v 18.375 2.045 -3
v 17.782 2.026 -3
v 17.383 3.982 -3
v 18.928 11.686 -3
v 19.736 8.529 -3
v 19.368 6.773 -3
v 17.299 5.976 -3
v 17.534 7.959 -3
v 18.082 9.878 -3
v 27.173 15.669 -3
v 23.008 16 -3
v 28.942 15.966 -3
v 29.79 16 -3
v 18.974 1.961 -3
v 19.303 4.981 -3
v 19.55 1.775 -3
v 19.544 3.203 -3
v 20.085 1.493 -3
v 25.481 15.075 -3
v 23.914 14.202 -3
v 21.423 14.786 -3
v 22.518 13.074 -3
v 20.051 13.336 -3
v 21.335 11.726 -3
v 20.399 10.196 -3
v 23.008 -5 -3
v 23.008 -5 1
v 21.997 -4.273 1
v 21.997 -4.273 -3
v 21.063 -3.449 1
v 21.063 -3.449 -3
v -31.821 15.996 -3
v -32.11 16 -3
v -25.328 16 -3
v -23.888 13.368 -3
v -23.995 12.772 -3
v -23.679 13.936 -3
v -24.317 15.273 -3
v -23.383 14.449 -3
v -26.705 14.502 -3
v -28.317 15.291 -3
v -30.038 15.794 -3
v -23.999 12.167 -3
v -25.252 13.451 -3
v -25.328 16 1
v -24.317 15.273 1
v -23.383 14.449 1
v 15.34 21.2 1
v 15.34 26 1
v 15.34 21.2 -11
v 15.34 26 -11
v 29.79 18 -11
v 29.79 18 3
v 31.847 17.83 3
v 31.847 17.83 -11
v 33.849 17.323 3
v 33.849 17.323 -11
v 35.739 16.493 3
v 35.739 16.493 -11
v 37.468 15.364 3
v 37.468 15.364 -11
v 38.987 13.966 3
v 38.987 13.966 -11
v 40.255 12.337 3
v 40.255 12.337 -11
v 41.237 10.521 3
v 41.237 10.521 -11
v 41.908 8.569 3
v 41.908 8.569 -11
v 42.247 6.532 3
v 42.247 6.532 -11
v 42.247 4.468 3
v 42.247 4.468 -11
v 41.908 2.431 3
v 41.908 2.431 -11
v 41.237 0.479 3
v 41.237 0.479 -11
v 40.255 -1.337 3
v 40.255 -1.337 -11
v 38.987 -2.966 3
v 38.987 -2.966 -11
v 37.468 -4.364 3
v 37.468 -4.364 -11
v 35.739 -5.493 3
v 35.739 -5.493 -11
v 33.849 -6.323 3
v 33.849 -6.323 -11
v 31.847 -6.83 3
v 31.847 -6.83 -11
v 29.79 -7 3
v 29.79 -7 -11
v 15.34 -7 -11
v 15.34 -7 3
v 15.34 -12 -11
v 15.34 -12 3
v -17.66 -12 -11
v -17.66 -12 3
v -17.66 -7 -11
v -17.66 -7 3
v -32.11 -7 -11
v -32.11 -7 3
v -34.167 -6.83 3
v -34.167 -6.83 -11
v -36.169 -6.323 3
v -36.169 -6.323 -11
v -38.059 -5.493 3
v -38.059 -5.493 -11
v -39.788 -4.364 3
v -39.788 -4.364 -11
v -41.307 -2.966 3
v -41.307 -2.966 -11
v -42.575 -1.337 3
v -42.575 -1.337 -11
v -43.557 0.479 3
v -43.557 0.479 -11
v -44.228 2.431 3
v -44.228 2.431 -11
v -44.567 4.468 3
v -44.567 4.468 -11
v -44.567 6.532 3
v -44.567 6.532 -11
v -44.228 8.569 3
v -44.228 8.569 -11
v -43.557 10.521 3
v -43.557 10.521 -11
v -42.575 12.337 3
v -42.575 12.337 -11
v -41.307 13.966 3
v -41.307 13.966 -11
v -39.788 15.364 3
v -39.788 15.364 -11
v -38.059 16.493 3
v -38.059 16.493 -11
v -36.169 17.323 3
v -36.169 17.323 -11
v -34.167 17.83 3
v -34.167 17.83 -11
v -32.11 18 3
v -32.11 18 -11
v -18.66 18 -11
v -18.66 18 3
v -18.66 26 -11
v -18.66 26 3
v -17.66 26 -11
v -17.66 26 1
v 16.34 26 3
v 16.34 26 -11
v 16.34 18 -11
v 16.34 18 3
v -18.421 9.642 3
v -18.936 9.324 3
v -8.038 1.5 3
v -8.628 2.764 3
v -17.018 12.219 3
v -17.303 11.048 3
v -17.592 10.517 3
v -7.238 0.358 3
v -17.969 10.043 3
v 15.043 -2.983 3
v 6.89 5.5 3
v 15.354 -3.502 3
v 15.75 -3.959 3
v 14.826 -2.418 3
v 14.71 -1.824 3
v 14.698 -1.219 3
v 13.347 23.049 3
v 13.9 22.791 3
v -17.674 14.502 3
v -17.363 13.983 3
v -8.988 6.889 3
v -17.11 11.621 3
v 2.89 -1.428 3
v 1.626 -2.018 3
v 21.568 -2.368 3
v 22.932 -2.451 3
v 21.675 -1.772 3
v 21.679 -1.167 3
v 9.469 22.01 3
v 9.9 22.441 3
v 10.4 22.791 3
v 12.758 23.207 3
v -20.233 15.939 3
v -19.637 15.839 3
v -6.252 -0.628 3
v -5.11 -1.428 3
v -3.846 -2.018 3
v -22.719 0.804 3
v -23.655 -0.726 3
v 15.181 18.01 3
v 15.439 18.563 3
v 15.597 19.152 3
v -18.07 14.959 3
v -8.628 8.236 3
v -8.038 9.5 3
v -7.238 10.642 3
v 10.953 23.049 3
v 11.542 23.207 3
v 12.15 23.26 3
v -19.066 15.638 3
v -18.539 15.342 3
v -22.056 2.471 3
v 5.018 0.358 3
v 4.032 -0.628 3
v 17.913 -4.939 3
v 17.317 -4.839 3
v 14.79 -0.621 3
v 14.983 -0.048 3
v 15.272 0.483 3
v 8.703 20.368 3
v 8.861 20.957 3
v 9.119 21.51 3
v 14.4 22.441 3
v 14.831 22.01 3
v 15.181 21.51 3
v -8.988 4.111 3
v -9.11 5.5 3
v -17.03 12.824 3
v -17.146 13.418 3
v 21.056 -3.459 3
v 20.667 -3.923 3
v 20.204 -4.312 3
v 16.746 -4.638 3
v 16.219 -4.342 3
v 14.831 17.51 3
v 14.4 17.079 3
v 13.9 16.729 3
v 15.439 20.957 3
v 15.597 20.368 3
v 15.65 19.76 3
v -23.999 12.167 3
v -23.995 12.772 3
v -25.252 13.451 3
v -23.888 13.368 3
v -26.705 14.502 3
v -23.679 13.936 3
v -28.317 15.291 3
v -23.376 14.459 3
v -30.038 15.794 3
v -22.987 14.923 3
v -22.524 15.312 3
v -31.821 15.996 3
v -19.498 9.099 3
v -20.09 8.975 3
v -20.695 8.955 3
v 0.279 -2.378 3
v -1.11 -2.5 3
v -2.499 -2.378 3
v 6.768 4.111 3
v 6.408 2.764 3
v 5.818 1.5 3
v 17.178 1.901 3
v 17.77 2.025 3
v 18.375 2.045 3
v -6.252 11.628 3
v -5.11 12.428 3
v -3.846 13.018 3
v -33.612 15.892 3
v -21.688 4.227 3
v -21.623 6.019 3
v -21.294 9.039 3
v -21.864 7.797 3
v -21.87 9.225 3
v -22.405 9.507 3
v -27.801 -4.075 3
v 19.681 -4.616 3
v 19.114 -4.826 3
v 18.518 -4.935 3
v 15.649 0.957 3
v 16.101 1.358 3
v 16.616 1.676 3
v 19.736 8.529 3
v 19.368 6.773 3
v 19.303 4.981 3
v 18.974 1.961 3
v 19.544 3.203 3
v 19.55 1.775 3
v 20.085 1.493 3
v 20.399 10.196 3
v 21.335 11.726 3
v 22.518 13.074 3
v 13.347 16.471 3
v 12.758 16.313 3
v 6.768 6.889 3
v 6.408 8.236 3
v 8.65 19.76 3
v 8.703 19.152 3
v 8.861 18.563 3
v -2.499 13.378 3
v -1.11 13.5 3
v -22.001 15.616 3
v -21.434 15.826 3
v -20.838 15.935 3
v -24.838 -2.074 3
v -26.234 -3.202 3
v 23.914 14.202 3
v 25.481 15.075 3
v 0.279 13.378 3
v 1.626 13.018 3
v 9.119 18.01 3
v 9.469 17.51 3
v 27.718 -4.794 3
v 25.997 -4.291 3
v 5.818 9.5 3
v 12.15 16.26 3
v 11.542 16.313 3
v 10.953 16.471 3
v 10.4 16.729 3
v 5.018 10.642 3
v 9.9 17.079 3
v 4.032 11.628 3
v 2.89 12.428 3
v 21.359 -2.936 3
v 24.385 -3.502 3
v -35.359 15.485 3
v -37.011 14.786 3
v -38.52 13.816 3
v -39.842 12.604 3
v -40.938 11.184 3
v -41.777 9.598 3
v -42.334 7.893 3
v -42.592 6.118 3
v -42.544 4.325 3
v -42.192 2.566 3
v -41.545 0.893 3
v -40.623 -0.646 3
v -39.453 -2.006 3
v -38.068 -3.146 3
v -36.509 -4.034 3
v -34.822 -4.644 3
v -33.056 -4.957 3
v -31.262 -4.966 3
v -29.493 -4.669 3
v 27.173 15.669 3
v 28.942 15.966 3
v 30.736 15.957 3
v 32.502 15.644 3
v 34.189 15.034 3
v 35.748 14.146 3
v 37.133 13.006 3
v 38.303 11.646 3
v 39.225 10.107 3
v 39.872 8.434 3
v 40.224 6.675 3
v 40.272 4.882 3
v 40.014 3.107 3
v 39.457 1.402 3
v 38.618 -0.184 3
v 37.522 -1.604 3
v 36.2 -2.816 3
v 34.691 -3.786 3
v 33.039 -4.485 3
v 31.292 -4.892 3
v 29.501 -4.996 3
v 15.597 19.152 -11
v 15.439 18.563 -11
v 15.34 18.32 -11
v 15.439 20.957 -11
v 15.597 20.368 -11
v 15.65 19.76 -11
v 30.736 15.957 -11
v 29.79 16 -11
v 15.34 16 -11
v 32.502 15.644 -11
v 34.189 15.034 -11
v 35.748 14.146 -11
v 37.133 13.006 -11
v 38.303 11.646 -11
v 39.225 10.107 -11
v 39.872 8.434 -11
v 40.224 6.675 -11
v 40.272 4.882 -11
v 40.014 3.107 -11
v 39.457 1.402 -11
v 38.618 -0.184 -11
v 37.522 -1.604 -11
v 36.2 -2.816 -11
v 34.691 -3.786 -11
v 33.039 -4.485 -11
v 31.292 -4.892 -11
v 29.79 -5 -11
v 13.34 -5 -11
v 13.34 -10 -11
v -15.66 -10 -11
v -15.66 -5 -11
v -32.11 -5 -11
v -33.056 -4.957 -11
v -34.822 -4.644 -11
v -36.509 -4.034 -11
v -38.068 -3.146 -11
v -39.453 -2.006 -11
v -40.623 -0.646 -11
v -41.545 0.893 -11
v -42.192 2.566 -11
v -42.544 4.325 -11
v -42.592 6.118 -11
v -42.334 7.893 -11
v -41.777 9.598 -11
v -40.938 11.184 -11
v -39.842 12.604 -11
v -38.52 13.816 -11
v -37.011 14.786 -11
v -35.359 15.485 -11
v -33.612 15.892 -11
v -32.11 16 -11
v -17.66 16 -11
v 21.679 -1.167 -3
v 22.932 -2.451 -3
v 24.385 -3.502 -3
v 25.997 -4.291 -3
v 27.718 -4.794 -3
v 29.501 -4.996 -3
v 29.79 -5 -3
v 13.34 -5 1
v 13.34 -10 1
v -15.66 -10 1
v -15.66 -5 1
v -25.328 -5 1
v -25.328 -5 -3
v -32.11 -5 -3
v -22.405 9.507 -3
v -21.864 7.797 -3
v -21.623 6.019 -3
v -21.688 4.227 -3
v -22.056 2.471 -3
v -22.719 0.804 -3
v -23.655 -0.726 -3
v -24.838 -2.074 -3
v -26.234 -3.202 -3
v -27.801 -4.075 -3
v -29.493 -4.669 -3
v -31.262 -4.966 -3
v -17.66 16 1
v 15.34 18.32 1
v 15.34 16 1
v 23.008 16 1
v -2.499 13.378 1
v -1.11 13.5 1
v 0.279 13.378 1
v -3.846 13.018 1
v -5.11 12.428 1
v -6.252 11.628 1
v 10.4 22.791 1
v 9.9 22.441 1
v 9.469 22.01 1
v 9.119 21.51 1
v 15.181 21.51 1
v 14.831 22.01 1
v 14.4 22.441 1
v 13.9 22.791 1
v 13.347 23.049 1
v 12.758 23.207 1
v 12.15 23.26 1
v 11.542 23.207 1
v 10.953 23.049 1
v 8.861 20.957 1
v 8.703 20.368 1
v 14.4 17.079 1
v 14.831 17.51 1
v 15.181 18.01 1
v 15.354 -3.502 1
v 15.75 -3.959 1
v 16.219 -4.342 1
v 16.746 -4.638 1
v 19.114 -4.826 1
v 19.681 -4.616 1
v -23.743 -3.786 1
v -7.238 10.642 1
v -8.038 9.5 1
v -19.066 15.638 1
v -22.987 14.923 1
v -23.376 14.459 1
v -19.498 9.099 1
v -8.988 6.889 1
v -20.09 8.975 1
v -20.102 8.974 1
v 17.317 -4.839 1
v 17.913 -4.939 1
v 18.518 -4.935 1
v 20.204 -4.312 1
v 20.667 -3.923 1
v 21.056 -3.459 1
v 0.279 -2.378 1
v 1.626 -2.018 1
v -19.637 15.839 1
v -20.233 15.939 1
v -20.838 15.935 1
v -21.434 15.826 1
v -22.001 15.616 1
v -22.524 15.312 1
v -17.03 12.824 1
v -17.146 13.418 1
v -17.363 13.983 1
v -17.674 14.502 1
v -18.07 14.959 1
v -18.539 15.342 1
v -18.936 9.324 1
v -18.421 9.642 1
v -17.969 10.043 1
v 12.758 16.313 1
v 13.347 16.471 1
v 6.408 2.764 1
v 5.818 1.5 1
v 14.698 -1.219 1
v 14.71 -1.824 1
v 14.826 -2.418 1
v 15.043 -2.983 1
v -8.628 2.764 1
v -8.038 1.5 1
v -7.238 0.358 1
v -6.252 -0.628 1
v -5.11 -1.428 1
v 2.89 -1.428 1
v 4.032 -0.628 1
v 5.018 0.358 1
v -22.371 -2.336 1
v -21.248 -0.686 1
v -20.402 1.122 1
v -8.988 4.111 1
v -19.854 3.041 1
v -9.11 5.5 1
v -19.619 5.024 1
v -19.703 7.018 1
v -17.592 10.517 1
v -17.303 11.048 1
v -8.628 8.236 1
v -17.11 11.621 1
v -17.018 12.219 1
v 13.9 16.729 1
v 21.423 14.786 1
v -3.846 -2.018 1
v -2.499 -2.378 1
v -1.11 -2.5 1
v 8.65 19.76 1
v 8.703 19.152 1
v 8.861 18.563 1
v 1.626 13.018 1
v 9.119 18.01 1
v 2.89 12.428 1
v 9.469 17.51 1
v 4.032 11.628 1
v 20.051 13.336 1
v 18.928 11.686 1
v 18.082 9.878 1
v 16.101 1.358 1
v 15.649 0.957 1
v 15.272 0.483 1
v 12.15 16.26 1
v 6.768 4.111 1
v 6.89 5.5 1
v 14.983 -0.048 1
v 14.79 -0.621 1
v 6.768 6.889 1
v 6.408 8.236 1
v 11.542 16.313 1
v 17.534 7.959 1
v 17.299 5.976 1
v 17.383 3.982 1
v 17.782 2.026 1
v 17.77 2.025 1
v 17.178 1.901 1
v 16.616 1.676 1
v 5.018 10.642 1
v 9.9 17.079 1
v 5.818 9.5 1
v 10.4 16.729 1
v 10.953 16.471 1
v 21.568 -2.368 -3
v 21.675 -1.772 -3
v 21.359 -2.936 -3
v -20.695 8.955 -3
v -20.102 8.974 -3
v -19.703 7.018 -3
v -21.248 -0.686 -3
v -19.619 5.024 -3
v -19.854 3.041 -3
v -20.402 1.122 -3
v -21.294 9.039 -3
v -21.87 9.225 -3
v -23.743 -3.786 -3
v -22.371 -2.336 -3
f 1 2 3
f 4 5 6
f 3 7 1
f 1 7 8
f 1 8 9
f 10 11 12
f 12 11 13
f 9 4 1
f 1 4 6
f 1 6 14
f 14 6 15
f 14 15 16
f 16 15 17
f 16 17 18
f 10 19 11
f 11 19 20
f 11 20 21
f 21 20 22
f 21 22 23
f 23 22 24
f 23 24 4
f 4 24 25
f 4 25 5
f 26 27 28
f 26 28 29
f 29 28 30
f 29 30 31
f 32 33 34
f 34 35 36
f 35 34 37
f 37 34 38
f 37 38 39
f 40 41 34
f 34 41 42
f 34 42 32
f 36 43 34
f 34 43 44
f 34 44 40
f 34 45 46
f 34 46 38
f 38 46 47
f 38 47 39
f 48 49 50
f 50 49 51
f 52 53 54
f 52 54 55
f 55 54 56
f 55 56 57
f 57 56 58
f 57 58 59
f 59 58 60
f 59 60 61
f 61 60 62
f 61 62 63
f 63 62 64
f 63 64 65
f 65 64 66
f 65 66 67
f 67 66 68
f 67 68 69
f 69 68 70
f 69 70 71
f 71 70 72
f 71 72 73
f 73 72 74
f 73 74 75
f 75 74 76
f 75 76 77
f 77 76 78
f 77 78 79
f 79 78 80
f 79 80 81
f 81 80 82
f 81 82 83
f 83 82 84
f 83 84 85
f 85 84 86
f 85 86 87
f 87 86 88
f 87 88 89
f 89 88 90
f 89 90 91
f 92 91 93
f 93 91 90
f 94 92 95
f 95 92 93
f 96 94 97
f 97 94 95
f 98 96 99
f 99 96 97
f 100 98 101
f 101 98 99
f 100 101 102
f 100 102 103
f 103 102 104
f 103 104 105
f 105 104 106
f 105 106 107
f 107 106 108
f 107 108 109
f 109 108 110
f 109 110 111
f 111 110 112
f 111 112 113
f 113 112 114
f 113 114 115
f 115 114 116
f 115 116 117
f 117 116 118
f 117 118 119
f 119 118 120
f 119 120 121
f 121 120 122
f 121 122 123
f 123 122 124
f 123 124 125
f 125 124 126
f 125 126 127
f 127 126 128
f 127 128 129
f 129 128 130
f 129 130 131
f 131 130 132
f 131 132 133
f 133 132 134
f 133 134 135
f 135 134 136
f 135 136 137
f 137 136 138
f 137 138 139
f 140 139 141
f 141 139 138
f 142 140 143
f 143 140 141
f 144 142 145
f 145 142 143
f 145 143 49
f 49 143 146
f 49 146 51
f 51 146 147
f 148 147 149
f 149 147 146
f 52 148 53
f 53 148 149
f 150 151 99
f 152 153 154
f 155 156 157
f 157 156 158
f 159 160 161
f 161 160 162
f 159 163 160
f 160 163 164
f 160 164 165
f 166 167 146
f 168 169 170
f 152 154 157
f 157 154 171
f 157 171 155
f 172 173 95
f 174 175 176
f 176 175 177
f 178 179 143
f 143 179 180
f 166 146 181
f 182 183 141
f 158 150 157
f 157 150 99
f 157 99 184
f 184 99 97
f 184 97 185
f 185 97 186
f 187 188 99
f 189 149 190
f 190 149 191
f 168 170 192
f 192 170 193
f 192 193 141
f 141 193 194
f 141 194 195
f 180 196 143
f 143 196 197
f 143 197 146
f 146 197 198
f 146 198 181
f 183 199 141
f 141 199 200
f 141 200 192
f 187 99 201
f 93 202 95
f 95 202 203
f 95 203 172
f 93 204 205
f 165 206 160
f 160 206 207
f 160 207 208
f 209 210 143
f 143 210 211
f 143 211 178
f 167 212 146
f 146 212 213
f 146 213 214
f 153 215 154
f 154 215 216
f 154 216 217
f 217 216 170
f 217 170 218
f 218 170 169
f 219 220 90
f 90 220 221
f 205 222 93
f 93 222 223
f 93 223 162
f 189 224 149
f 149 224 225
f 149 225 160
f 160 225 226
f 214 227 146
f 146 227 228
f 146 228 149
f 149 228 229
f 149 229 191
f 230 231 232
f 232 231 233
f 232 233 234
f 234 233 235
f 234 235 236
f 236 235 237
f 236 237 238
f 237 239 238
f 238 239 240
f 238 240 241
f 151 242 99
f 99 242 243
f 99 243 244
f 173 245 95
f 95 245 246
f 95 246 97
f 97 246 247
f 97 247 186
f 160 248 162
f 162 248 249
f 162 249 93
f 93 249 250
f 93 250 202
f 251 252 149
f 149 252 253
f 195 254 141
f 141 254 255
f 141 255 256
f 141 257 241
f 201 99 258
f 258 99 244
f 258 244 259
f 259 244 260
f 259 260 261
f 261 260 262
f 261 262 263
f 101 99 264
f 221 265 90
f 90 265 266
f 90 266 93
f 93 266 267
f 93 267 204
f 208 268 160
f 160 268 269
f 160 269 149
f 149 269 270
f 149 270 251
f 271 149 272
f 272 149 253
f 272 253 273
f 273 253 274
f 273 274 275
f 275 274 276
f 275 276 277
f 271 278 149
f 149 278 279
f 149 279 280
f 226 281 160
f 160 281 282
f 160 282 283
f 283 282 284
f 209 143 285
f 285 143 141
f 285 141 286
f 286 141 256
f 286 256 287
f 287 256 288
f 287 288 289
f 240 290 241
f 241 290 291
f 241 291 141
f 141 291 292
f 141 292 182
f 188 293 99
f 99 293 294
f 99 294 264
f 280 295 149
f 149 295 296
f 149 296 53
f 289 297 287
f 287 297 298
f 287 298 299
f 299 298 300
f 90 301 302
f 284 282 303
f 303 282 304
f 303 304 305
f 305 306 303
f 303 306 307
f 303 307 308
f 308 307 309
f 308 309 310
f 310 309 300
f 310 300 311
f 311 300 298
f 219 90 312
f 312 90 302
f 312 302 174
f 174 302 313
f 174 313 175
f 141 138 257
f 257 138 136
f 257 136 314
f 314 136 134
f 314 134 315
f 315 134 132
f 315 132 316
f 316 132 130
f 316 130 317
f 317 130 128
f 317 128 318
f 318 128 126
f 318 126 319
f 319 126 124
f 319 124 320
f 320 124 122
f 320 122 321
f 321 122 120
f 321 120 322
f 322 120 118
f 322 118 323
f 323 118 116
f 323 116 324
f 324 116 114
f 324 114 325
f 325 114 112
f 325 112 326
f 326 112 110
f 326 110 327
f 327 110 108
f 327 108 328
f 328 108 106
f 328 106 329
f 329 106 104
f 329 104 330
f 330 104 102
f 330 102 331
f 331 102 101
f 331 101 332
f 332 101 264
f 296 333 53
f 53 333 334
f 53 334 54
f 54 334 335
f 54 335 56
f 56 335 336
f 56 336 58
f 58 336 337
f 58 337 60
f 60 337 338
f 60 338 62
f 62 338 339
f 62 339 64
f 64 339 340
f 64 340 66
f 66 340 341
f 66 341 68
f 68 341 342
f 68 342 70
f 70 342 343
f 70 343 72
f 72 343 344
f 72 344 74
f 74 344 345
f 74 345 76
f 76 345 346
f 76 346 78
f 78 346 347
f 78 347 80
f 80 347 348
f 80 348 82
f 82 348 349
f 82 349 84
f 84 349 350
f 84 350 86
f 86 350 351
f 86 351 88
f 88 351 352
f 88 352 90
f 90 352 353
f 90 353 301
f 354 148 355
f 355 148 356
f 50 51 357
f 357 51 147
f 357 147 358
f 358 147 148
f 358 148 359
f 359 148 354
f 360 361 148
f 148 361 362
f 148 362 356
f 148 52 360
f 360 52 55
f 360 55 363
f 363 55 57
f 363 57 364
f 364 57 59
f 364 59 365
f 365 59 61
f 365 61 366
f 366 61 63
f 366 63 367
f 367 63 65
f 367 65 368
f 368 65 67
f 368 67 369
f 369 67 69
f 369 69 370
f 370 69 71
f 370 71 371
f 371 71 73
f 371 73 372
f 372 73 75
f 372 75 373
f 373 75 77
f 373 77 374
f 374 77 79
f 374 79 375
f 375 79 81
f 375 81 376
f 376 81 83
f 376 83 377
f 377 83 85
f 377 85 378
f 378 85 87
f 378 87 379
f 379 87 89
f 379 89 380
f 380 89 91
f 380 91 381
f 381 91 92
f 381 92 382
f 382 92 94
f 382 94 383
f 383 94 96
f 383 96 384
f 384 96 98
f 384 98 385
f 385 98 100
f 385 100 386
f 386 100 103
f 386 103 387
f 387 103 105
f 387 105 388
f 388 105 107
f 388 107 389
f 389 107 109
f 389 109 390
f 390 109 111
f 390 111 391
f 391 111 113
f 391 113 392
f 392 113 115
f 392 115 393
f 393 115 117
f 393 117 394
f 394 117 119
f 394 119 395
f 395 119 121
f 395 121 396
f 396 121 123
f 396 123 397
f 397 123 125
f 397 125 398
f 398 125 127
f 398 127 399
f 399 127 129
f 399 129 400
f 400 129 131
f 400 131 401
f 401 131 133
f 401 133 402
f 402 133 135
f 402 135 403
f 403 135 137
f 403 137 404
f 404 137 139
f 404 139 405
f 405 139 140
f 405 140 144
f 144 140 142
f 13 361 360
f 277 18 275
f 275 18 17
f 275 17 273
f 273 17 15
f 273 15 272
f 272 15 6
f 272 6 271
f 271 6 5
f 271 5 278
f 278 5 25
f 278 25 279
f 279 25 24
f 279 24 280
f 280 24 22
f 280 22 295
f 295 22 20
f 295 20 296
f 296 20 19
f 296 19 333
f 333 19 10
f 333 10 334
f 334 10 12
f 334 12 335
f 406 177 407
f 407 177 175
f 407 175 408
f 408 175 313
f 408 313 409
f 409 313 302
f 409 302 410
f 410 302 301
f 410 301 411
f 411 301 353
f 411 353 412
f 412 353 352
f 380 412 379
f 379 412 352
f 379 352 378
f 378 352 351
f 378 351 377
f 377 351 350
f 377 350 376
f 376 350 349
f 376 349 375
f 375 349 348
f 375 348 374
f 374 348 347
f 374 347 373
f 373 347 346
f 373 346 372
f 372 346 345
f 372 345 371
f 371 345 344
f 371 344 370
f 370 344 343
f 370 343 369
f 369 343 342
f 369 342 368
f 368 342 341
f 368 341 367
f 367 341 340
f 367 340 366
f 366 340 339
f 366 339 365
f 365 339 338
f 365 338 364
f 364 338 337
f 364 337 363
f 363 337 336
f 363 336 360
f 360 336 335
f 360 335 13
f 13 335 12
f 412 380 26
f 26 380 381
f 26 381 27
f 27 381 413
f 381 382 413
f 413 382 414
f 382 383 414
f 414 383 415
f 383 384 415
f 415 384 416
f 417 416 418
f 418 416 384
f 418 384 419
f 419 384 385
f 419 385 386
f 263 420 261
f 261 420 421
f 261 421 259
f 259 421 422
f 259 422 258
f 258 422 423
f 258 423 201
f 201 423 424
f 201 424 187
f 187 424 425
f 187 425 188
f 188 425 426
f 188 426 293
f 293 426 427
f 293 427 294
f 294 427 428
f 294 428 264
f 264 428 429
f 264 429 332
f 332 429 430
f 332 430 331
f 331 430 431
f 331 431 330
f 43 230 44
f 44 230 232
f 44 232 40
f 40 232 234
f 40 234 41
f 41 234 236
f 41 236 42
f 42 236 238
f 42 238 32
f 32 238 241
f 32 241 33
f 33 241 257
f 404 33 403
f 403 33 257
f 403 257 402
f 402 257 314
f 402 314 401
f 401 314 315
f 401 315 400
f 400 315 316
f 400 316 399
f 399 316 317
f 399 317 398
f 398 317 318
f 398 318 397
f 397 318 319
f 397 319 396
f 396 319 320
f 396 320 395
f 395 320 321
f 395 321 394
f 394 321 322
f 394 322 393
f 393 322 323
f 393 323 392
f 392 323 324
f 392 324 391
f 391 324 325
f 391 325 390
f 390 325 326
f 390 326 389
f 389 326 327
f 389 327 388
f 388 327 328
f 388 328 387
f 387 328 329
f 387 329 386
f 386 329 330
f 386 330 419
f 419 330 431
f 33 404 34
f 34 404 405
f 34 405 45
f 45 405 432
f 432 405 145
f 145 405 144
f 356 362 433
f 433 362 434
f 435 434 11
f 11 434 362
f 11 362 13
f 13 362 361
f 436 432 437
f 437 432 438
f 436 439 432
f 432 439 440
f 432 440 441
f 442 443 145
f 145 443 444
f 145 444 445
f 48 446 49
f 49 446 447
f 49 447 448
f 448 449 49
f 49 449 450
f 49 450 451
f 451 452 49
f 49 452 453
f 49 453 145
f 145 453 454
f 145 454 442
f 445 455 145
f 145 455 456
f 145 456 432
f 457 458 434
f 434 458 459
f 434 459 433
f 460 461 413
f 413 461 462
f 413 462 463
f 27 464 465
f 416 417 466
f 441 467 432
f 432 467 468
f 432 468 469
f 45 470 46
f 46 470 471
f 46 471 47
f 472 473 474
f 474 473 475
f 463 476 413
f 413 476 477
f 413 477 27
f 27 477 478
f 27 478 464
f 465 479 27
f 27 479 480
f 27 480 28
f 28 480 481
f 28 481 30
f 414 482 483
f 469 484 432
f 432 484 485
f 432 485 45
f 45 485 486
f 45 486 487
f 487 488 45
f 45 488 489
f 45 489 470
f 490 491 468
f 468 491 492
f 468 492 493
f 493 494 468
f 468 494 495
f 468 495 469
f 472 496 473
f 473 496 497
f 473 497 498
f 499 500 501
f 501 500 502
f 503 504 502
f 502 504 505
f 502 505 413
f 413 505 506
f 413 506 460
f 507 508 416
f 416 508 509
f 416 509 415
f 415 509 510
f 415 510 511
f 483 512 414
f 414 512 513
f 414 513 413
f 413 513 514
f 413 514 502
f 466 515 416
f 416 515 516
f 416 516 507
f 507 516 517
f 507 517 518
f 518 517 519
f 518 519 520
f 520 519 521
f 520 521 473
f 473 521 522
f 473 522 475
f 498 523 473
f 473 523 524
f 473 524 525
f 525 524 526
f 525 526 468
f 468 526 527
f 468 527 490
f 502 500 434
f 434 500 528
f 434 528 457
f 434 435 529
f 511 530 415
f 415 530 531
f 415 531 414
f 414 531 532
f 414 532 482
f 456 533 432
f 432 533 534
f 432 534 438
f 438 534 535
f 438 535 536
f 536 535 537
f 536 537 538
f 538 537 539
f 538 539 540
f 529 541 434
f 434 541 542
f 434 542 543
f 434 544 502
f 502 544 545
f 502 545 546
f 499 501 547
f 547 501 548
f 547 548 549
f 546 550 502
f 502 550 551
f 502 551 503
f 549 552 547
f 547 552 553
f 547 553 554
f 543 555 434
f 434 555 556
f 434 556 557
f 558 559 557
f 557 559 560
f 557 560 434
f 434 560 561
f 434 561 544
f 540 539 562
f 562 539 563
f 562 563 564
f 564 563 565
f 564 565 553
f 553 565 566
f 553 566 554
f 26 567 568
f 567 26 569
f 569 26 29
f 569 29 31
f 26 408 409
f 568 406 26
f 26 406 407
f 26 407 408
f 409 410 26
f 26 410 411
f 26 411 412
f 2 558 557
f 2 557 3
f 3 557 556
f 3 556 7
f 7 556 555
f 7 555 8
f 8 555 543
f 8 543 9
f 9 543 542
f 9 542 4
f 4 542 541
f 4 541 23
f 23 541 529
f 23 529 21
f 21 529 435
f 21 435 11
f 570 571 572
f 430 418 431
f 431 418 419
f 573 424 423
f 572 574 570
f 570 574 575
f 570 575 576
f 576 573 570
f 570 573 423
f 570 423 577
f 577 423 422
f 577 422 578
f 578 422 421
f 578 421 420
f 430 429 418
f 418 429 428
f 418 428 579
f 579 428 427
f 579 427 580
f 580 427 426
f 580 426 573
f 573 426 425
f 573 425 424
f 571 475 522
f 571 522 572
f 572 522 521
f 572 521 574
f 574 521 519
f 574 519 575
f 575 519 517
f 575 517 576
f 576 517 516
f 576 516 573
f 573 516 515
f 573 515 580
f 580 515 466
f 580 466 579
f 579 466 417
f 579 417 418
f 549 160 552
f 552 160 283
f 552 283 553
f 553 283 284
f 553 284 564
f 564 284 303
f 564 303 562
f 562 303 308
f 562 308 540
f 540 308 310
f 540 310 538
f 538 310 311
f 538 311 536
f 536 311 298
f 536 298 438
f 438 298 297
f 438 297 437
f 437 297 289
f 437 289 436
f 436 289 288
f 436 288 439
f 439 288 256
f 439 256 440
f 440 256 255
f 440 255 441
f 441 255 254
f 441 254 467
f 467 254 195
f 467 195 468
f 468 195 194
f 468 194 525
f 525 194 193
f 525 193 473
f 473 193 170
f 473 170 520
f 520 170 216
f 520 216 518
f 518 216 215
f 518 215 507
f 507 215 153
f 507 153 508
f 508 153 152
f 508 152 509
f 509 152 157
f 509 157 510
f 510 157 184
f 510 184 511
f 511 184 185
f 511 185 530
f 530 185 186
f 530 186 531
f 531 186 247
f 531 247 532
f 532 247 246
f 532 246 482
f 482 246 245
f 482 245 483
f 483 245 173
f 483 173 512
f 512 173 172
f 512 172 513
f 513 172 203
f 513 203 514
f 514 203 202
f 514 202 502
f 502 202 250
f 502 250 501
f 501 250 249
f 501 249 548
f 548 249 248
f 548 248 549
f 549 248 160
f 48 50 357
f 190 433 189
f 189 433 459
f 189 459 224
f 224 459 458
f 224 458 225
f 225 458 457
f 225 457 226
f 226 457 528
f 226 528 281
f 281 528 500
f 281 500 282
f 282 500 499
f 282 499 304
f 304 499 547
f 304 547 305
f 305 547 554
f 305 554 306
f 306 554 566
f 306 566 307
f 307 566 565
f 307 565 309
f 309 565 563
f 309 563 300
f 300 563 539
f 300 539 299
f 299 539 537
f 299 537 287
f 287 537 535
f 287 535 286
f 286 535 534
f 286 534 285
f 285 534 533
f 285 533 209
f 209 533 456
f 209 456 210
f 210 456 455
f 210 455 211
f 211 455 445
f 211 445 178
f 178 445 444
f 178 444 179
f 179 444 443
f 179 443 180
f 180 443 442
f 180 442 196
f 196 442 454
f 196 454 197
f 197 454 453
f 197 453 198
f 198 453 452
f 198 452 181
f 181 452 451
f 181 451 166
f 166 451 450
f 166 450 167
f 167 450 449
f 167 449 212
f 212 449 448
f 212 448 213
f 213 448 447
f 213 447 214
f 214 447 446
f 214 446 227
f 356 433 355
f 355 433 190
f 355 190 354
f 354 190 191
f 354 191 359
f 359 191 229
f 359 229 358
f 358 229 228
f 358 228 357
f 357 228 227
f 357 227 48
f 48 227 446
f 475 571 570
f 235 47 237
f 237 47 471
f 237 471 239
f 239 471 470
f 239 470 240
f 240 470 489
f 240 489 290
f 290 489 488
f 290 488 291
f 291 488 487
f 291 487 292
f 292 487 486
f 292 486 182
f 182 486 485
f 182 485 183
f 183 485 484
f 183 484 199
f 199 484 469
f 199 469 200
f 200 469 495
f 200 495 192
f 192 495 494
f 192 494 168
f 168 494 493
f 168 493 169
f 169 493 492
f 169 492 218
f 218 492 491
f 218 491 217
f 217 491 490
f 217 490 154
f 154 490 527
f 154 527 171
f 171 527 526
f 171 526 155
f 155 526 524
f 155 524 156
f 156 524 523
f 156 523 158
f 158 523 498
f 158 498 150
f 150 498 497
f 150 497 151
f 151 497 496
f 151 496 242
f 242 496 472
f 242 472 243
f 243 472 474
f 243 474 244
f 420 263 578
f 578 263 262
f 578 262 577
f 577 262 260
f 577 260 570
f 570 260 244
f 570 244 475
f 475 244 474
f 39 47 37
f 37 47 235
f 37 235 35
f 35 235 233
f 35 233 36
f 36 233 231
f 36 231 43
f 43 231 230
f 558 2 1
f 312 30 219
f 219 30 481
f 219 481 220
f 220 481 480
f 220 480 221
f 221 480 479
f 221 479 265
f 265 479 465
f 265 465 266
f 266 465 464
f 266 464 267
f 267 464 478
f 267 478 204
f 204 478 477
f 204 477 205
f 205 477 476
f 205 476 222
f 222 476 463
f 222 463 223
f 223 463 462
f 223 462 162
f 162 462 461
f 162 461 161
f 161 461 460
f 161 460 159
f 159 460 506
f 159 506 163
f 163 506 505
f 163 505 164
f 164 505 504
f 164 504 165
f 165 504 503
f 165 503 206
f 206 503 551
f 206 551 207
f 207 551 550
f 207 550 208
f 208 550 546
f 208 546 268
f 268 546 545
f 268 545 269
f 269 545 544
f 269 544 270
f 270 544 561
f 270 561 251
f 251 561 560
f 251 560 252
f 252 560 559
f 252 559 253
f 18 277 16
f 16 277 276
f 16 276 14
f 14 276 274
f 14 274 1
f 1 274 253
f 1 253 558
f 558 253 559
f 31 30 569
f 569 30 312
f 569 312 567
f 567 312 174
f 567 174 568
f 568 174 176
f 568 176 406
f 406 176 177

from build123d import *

# Parameters (mm, degrees)
FRONT_PLATE_DEPTH                   = 2
SHELL_DEPTH                         = 12
SHELL_HOLLOW_DEPTH                  = 12
SK_IRRINGS_R                        = 12.5
SK_IRRINGS_R_2                      = 10.5
IR_LED_RINGS_DEPTH                  = 4
LENS_LDR_AND_IR_OPENINGS_DEPTH      = 53.792538299
LENS_LDR_AND_IR_OPENINGS_DEPTH_BACK = 53.792538299
SK_FRONTOPENINGS_R                  = 8
SK_FRONTOPENINGS_R_2                = 3.5
SK_FRONTOPENINGS_R_3                = 10.5
IR_BOARD_NOTCHES_DEPTH              = 53.792538299
IR_BOARD_NOTCHES_DEPTH_BACK         = 53.792538299
SK_IRNOTCHES_R                      = 3.5


with BuildPart() as part:
    # Sk_FrontPlate → Front Plate (new body)
    with BuildSketch(Plane.XY.offset(3)):
        with BuildLine():
            Line((29.79, 18), (16.34, 18))
            Line((16.34, 18), (16.34, 26))
            Line((16.34, 26), (-18.66, 26))
            Line((-18.66, 26), (-18.66, 18))
            Line((-18.66, 18), (-32.11, 18))
            ThreePointArc((-32.11, 18), (-44.61, 5.5), (-32.11, -7))
            Line((-32.11, -7), (-17.66, -7))
            Line((-17.66, -7), (-17.66, -12))
            Line((-17.66, -12), (15.34, -12))
            Line((15.34, -12), (15.34, -7))
            Line((15.34, -7), (29.79, -7))
            ThreePointArc((29.79, -7), (42.29, 5.5), (29.79, 18))
        make_face()
    extrude(amount=-FRONT_PLATE_DEPTH)

    # Sk_ShellOuter → Shell (add)
    with BuildSketch(Plane.XY.offset(1)):
        with BuildLine():
            Line((29.79, 18), (16.34, 18))
            Line((16.34, 18), (16.34, 26))
            Line((16.34, 26), (-18.66, 26))
            Line((-18.66, 26), (-18.66, 18))
            Line((-18.66, 18), (-32.11, 18))
            ThreePointArc((-32.11, 18), (-44.61, 5.5), (-32.11, -7))
            Line((-32.11, -7), (-17.66, -7))
            Line((-17.66, -7), (-17.66, -12))
            Line((-17.66, -12), (15.34, -12))
            Line((15.34, -12), (15.34, -7))
            Line((15.34, -7), (29.79, -7))
            ThreePointArc((29.79, -7), (42.29, 5.5), (29.79, 18))
        make_face()
    extrude(amount=-SHELL_DEPTH)

    # Sk_ShellInner → Shell Hollow (cut)
    with BuildSketch(Plane.XY.offset(1)):
        with BuildLine():
            Line((29.79, 16), (15.34, 16))
            Line((15.34, 16), (15.34, 27))
            Line((15.34, 27), (-17.66, 27))
            Line((-17.66, 27), (-17.66, 16))
            Line((-17.66, 16), (-32.11, 16))
            ThreePointArc((-32.11, 16), (-42.61, 5.5), (-32.11, -5))
            Line((-32.11, -5), (-15.66, -5))
            Line((-15.66, -5), (-15.66, -10))
            Line((-15.66, -10), (13.34, -10))
            Line((13.34, -10), (13.34, -5))
            Line((13.34, -5), (29.79, -5))
            ThreePointArc((29.79, -5), (40.29, 5.5), (29.79, 16))
        make_face()
    extrude(amount=-SHELL_HOLLOW_DEPTH, mode=Mode.SUBTRACT)

    # Sk_IRRings → IR LED Rings (add)
    # profile 1 of 2: a face of its own
    with BuildSketch(Plane.XY.offset(1)):
        with Locations((-32.11, 5.5)):
            Circle(SK_IRRINGS_R)
        with Locations((-32.11, 5.5)):
            Circle(SK_IRRINGS_R_2, mode=Mode.SUBTRACT)
    # profile 2 of 2: a face of its own
    with BuildSketch(Plane.XY.offset(1)):
        with Locations((29.79, 5.5)):
            Circle(SK_IRRINGS_R)
        with Locations((29.79, 5.5)):
            Circle(SK_IRRINGS_R_2, mode=Mode.SUBTRACT)
    extrude(amount=-IR_LED_RINGS_DEPTH)

    # Sk_FrontOpenings → Lens, LDR and IR Openings (cut, two sides: drawn at the far end of the back side and taken through both)
    with BuildSketch(Plane.XY.offset(-LENS_LDR_AND_IR_OPENINGS_DEPTH_BACK)):
        with Locations((-1.11, 5.5)):
            Circle(SK_FRONTOPENINGS_R)
        with Locations((12.15, 19.76)):
            Circle(SK_FRONTOPENINGS_R_2)
        with Locations((-32.11, 5.5)):
            Circle(SK_FRONTOPENINGS_R_3)
        with Locations((29.79, 5.5)):
            Circle(SK_FRONTOPENINGS_R_3)
    extrude(amount=LENS_LDR_AND_IR_OPENINGS_DEPTH + LENS_LDR_AND_IR_OPENINGS_DEPTH_BACK, mode=Mode.SUBTRACT)

    # Sk_IRNotches → IR Board Notches (cut, two sides: drawn at the far end of the back side and taken through both)
    with BuildSketch(Plane.XY.offset(-IR_BOARD_NOTCHES_DEPTH_BACK)):
        with Locations((-20.51, 12.45)):
            Circle(SK_IRNOTCHES_R)
        with Locations((18.19, -1.45)):
            Circle(SK_IRNOTCHES_R)
    extrude(amount=IR_BOARD_NOTCHES_DEPTH + IR_BOARD_NOTCHES_DEPTH_BACK, mode=Mode.SUBTRACT)


solid = part.part
